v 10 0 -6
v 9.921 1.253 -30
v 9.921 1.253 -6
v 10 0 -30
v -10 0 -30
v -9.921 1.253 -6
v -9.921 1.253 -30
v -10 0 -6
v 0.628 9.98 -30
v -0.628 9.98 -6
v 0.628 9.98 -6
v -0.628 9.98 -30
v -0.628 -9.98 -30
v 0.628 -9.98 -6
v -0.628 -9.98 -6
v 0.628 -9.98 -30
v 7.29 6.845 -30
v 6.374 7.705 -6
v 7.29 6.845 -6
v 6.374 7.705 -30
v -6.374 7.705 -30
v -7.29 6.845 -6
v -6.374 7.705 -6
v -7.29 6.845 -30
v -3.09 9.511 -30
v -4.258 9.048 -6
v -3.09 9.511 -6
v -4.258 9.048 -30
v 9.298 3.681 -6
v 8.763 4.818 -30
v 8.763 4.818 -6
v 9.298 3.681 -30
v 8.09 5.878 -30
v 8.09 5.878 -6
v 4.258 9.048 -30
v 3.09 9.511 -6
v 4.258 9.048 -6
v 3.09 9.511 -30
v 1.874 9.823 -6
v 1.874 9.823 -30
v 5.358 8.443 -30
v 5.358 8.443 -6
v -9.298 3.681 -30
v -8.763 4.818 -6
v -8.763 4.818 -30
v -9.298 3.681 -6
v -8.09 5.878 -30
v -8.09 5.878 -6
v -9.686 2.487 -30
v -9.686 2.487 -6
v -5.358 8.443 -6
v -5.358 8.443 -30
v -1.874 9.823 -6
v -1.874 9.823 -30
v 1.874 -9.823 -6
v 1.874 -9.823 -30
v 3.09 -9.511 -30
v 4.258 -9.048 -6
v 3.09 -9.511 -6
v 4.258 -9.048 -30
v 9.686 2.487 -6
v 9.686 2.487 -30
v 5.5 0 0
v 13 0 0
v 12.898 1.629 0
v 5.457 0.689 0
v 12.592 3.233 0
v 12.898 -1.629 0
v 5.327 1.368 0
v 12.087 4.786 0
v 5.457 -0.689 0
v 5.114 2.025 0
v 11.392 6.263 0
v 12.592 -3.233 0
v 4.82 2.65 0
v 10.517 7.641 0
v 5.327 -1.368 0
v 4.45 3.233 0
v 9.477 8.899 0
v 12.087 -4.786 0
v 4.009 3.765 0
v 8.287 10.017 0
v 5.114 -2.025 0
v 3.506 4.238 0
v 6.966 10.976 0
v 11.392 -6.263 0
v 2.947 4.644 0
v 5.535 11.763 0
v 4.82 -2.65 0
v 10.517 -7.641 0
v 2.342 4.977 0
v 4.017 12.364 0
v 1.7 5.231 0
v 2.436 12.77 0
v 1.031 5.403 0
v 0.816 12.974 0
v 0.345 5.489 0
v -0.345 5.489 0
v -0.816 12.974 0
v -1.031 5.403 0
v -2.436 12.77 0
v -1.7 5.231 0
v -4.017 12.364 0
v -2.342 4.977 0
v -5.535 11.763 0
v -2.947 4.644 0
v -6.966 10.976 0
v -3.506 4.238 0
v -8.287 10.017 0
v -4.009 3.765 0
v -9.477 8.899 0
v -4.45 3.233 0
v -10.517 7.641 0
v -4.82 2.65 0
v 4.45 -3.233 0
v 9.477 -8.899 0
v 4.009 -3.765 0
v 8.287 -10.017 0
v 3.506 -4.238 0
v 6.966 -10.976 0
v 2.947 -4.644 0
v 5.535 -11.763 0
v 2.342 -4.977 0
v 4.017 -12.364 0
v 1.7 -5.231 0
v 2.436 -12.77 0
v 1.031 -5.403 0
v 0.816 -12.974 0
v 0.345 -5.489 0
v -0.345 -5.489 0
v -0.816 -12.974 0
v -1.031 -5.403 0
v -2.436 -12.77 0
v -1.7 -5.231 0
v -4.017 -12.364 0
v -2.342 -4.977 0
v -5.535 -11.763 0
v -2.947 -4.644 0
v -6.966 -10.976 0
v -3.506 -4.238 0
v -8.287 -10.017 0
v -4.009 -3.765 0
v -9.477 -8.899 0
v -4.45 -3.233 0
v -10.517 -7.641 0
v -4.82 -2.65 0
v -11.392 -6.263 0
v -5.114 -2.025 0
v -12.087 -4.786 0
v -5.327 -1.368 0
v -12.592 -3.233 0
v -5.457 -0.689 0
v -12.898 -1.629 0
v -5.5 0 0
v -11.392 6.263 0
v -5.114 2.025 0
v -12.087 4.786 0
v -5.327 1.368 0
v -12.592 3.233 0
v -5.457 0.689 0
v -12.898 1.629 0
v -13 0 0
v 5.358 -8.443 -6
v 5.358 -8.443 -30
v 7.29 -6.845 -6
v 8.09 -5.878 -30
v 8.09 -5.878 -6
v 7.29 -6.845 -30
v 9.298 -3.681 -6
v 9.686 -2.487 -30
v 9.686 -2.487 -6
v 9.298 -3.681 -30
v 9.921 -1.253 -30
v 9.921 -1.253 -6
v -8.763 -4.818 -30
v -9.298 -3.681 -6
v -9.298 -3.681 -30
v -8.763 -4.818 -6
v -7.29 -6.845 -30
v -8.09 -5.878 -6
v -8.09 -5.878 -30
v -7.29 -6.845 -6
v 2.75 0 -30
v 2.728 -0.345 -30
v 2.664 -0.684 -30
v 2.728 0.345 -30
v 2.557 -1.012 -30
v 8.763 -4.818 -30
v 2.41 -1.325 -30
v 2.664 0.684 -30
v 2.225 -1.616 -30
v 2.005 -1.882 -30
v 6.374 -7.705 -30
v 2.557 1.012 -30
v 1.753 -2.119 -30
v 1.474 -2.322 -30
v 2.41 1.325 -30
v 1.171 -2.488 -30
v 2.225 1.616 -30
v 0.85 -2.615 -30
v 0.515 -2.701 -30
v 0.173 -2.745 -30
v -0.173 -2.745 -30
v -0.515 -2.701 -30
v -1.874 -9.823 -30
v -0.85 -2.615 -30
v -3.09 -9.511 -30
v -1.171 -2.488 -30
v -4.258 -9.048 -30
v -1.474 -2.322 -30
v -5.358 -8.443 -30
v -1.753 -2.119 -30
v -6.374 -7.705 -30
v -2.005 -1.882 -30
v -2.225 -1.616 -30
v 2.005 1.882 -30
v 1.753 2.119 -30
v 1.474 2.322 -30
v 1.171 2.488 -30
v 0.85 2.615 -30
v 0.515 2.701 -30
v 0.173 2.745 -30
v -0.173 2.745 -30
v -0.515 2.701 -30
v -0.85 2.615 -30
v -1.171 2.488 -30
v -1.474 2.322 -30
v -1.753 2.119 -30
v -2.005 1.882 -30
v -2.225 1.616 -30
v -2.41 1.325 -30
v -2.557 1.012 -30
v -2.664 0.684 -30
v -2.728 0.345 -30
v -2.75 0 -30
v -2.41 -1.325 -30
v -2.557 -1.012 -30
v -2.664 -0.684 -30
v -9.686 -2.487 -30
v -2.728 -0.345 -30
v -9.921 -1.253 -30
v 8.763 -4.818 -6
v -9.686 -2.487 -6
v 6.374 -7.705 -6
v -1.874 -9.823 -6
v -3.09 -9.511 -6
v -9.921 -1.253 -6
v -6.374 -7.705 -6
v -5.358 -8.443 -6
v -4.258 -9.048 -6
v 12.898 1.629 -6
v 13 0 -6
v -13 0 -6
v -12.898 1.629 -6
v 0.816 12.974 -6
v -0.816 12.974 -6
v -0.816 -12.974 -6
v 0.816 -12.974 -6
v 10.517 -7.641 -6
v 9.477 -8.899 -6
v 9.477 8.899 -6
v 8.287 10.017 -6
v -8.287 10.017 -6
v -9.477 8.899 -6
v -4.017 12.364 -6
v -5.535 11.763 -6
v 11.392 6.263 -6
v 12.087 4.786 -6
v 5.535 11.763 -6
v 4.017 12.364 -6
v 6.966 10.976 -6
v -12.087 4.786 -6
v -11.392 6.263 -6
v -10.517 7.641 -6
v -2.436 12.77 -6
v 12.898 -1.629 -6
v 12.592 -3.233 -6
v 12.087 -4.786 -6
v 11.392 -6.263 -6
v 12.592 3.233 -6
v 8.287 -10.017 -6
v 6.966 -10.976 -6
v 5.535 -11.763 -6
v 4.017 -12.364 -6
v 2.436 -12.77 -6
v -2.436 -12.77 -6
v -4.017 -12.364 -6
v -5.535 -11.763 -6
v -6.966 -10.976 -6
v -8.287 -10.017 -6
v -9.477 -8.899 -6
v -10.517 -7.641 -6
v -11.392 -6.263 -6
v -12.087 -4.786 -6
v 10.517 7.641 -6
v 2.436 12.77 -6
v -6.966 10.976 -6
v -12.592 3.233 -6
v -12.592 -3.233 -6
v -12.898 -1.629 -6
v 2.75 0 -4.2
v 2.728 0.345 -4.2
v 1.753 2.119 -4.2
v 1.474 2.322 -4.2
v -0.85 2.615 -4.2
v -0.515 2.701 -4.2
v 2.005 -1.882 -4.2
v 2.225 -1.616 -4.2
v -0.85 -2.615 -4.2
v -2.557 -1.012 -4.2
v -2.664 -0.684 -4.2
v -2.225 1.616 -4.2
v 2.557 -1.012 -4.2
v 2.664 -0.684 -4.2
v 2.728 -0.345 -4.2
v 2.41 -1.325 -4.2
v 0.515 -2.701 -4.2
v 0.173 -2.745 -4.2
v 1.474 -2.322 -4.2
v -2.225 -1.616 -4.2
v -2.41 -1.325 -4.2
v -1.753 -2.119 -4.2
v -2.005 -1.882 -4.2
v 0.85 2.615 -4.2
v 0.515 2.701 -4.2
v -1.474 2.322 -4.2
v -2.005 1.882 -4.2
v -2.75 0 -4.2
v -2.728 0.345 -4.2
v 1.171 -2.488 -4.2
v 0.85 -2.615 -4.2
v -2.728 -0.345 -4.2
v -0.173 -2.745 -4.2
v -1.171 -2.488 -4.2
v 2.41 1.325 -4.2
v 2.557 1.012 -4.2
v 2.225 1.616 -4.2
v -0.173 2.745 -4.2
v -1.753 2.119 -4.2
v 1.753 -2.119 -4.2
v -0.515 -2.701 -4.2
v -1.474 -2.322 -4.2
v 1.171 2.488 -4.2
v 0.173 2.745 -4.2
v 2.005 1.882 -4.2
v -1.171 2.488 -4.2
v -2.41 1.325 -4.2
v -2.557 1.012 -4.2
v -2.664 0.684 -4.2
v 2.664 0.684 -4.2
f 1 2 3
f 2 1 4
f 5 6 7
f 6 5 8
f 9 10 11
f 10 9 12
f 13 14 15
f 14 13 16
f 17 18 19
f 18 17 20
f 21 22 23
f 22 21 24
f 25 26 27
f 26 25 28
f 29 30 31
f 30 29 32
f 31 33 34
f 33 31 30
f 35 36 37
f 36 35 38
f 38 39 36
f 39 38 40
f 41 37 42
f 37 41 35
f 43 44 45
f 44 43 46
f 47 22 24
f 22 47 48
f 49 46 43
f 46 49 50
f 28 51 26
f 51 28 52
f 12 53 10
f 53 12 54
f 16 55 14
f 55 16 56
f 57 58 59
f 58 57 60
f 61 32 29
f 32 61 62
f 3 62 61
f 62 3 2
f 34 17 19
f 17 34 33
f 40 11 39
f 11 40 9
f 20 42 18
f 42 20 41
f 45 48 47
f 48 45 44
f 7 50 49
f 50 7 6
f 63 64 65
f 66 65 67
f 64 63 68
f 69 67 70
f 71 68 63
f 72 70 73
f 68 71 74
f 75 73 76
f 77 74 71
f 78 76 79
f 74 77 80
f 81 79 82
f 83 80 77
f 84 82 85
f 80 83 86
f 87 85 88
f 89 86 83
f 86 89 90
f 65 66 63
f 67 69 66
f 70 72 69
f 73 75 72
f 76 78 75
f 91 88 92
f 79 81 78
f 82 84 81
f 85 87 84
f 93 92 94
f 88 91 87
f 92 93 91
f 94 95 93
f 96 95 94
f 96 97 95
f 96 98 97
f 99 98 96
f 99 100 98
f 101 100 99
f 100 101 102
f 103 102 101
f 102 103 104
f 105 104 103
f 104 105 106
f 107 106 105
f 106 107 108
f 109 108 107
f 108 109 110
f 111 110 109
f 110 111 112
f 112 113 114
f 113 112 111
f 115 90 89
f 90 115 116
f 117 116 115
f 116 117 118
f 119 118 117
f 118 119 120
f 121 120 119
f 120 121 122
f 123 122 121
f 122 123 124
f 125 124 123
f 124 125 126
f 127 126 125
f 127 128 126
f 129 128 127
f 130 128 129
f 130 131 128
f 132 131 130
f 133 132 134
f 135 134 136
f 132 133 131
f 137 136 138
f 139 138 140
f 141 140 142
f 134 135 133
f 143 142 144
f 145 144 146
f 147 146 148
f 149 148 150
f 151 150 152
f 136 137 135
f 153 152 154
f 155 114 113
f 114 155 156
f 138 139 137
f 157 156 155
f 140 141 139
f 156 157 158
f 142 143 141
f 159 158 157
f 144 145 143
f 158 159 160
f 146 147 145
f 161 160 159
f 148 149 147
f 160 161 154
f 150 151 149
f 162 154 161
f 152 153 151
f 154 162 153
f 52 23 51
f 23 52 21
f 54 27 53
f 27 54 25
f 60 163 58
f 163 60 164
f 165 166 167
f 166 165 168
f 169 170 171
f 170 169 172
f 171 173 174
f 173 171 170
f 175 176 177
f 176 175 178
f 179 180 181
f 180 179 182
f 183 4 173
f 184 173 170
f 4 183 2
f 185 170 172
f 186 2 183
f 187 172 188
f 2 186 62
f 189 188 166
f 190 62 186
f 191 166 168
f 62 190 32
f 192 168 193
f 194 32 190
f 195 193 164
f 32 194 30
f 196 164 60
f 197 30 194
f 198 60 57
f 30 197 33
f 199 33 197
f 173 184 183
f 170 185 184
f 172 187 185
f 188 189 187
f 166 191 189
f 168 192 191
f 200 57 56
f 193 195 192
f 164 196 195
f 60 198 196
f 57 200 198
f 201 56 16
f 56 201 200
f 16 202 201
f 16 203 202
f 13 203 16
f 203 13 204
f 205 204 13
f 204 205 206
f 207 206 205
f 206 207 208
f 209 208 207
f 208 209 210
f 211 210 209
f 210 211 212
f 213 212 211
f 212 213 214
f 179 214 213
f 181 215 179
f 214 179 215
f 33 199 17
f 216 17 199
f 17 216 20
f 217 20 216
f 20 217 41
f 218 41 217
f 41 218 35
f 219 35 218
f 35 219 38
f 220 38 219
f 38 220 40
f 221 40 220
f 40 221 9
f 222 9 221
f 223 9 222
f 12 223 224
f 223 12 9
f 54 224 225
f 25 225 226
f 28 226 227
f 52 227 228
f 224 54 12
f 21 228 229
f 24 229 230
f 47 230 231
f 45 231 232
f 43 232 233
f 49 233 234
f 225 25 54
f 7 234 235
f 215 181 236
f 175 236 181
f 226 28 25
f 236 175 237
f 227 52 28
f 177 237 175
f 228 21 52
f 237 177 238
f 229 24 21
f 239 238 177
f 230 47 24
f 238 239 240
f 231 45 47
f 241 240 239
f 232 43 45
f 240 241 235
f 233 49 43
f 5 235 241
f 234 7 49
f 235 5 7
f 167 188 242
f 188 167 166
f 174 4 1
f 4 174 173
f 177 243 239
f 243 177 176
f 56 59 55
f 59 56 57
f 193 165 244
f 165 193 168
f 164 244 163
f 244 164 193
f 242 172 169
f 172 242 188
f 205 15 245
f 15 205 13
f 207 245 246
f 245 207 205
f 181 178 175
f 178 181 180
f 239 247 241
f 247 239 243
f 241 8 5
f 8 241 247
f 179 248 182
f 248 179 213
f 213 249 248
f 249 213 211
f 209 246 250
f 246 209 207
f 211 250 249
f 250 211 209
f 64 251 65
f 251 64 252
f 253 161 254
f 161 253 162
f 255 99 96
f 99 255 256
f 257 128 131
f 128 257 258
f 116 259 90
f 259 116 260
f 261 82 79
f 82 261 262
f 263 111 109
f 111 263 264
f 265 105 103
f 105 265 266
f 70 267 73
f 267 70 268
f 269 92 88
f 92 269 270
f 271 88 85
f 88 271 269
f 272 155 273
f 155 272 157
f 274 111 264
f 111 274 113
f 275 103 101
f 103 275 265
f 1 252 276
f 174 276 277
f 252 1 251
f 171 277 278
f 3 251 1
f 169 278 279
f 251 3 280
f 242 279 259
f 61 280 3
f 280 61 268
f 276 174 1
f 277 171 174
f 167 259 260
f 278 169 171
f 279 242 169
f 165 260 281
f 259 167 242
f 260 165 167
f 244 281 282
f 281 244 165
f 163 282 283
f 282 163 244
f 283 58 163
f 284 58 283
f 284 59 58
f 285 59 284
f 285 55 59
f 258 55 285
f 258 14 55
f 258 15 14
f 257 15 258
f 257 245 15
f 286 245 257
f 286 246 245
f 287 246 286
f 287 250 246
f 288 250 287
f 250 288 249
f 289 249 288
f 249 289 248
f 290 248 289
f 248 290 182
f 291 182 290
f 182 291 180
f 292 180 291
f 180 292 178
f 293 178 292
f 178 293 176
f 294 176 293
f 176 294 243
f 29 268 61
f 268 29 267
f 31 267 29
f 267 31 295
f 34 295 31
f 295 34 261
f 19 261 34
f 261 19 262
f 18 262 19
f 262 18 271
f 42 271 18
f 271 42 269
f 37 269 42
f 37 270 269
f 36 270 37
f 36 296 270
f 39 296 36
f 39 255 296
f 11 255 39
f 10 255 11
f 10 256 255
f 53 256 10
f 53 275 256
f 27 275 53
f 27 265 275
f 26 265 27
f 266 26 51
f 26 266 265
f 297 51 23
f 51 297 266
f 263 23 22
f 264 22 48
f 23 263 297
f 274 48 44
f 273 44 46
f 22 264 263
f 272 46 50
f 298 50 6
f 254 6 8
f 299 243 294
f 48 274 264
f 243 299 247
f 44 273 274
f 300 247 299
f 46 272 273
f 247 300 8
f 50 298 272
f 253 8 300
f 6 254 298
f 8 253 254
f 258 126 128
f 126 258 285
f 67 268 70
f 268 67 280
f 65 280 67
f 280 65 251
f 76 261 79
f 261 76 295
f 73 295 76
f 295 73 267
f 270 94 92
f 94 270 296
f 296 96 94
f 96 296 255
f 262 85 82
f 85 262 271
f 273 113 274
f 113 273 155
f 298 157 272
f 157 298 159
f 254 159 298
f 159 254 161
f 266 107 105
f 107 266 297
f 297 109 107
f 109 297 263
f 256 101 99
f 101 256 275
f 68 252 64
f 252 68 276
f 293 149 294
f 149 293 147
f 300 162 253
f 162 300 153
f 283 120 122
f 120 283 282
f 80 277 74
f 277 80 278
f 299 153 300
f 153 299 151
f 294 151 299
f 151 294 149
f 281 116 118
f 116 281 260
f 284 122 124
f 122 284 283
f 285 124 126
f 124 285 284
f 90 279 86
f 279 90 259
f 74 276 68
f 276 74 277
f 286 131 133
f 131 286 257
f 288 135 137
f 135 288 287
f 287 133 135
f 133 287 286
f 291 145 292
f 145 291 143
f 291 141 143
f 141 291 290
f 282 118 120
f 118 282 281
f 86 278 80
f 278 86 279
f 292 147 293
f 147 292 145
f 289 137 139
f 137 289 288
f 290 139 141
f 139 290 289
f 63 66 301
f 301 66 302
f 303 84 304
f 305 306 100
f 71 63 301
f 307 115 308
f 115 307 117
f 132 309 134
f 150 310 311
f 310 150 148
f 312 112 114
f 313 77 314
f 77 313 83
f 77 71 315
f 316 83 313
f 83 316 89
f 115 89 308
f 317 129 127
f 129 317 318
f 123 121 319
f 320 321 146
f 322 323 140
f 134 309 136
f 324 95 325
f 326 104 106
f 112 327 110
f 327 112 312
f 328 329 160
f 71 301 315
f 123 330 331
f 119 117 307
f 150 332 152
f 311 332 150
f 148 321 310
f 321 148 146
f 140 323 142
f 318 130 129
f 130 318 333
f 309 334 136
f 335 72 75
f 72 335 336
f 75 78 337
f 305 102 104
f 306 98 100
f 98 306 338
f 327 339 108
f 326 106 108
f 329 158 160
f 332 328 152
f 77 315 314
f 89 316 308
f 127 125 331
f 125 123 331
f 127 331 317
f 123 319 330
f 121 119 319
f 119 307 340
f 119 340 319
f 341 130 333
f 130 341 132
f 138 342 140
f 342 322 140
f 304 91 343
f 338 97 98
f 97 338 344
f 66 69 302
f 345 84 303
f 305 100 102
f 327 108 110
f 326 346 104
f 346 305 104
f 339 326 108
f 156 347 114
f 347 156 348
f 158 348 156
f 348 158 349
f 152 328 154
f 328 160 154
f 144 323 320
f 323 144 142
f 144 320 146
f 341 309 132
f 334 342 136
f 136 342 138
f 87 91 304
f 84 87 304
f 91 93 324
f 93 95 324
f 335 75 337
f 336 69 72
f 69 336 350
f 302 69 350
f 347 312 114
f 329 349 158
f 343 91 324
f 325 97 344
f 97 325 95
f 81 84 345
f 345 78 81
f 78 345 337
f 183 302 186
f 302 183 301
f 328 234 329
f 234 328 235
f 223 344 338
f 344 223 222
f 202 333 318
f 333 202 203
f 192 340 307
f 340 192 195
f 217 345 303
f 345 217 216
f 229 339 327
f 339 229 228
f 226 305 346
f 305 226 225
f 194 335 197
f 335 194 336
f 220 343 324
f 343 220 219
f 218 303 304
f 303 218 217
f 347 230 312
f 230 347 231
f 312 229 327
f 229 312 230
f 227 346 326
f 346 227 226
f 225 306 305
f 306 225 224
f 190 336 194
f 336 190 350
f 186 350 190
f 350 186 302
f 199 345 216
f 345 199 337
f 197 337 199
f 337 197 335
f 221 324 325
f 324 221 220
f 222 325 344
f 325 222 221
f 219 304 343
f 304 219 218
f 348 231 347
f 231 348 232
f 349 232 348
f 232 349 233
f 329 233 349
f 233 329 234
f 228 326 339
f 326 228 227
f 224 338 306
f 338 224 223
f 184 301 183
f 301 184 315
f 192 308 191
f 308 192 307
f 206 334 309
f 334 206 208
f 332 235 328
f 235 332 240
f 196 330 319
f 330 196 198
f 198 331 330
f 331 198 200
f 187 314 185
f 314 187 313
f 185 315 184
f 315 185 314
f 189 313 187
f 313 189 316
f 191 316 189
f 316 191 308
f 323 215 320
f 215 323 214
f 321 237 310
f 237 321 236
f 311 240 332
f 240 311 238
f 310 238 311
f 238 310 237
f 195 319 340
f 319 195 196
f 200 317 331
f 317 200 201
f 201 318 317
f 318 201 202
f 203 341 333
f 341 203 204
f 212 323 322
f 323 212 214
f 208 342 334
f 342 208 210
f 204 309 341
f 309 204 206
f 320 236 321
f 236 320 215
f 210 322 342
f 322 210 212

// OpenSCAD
$fn = 50;


difference() {
	union() {
		translate(v = [0, 0, -30.0000000000]) {
			cylinder(h = 30, r = 10.0000000000);
		}
		translate(v = [0, 0, -6.0000000000]) {
			cylinder(h = 6, r = 13.0000000000);
		}
	}
	union() {
		translate(v = [0, 0, 0]) {
			rotate(a = [0, 0, 0]) {
				difference() {
					union() {
						#translate(v = [0, 0, -30.0000000000]) {
							cylinder(h = 30, r = 2.2500000000);
						}
						#translate(v = [0, 0, -4.2000000000]) {
							cylinder(h = 4.2000000000, r = 10.0000000000, r1 = 2.7500000000, r2 = 5.5000000000);
						}
						#translate(v = [0, 0, -30.0000000000]) {
							cylinder(h = 30, r = 2.7500000000);
						}
						#translate(v = [0, 0, -30.0000000000]) {
							cylinder(h = 30, r = 2.2500000000);
						}
					}
					union();
				}
			}
		}
	}
}
